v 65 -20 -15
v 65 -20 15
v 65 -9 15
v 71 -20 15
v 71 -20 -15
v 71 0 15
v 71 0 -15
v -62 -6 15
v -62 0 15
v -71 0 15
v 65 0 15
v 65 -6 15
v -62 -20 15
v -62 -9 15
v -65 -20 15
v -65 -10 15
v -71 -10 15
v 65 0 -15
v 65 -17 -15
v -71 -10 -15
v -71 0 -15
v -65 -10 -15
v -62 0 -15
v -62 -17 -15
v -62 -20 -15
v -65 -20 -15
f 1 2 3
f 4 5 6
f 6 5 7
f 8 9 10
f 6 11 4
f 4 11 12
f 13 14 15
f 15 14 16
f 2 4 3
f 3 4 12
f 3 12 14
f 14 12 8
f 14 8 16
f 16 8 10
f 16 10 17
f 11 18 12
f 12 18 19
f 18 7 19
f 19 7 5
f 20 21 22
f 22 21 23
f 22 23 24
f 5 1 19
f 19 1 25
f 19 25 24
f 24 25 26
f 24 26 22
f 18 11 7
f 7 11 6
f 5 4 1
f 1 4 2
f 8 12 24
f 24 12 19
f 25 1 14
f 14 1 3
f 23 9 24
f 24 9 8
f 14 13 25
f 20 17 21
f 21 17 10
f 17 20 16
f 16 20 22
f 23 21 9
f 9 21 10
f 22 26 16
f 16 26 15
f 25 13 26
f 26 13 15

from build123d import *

# Parameters (mm, degrees)
SKETCH_5_W        = 6
SKETCH_5_H        = 30
EXTRUDE_2_DEPTH   = 10
EXTRUDE_2_2_DEPTH = 10
SKETCH_6_W        = 6
SKETCH_6_H        = 30
EXTRUDE_3_DEPTH   = 10
EXTRUDE_4_DEPTH   = 3
EXTRUDE_5_DEPTH   = 127


with BuildPart() as part:
    # 스케치5 → 보스-돌출2 (new body)
    with BuildSketch(Plane(origin=(0, 0, 0), x_dir=(1, 0, 0), z_dir=(0, 1, 0))):
        with Locations((68, 0)):
            Rectangle(SKETCH_5_W, SKETCH_5_H)
    extrude(amount=-EXTRUDE_2_DEPTH)

    # 스케치6 → 보스-돌출3 (add)
    with BuildSketch(Plane.XZ.offset(10)):
        with Locations((68, 0)):
            Rectangle(SKETCH_6_W, SKETCH_6_H)
    extrude(amount=EXTRUDE_3_DEPTH)



with BuildPart() as body_2:
    # 스케치5 → Extrude 2 2 (new body)
    with BuildSketch(Plane(origin=(0, 0, 0), x_dir=(1, 0, 0), z_dir=(0, 1, 0))):
        with Locations((-68, 0)):
            Rectangle(SKETCH_5_W, SKETCH_5_H)
    extrude(amount=-EXTRUDE_2_2_DEPTH)

    # 스케치8 → 보스-돌출4 (add)
    with BuildSketch(Plane(origin=(-65, 0, 0), x_dir=(0, 0, -1), z_dir=(1, 0, 0))):
        Polygon((15, -14), (15, -20), (-15, -20), (-15, 0), (15, 0), align=None)
    extrude(amount=EXTRUDE_4_DEPTH)


with BuildPart() as part_1:
    add(part.part)

    add(body_2.part)  # 보스-돌출5 merges body 2
    # 스케치7 → 보스-돌출5 (add)
    with BuildSketch(Plane.ZY.offset(-65)):
        Polygon((-15, -17), (-15, -20), (15, -9), (15, -6), align=None)
    extrude(amount=EXTRUDE_5_DEPTH)


solid = part_1.part
